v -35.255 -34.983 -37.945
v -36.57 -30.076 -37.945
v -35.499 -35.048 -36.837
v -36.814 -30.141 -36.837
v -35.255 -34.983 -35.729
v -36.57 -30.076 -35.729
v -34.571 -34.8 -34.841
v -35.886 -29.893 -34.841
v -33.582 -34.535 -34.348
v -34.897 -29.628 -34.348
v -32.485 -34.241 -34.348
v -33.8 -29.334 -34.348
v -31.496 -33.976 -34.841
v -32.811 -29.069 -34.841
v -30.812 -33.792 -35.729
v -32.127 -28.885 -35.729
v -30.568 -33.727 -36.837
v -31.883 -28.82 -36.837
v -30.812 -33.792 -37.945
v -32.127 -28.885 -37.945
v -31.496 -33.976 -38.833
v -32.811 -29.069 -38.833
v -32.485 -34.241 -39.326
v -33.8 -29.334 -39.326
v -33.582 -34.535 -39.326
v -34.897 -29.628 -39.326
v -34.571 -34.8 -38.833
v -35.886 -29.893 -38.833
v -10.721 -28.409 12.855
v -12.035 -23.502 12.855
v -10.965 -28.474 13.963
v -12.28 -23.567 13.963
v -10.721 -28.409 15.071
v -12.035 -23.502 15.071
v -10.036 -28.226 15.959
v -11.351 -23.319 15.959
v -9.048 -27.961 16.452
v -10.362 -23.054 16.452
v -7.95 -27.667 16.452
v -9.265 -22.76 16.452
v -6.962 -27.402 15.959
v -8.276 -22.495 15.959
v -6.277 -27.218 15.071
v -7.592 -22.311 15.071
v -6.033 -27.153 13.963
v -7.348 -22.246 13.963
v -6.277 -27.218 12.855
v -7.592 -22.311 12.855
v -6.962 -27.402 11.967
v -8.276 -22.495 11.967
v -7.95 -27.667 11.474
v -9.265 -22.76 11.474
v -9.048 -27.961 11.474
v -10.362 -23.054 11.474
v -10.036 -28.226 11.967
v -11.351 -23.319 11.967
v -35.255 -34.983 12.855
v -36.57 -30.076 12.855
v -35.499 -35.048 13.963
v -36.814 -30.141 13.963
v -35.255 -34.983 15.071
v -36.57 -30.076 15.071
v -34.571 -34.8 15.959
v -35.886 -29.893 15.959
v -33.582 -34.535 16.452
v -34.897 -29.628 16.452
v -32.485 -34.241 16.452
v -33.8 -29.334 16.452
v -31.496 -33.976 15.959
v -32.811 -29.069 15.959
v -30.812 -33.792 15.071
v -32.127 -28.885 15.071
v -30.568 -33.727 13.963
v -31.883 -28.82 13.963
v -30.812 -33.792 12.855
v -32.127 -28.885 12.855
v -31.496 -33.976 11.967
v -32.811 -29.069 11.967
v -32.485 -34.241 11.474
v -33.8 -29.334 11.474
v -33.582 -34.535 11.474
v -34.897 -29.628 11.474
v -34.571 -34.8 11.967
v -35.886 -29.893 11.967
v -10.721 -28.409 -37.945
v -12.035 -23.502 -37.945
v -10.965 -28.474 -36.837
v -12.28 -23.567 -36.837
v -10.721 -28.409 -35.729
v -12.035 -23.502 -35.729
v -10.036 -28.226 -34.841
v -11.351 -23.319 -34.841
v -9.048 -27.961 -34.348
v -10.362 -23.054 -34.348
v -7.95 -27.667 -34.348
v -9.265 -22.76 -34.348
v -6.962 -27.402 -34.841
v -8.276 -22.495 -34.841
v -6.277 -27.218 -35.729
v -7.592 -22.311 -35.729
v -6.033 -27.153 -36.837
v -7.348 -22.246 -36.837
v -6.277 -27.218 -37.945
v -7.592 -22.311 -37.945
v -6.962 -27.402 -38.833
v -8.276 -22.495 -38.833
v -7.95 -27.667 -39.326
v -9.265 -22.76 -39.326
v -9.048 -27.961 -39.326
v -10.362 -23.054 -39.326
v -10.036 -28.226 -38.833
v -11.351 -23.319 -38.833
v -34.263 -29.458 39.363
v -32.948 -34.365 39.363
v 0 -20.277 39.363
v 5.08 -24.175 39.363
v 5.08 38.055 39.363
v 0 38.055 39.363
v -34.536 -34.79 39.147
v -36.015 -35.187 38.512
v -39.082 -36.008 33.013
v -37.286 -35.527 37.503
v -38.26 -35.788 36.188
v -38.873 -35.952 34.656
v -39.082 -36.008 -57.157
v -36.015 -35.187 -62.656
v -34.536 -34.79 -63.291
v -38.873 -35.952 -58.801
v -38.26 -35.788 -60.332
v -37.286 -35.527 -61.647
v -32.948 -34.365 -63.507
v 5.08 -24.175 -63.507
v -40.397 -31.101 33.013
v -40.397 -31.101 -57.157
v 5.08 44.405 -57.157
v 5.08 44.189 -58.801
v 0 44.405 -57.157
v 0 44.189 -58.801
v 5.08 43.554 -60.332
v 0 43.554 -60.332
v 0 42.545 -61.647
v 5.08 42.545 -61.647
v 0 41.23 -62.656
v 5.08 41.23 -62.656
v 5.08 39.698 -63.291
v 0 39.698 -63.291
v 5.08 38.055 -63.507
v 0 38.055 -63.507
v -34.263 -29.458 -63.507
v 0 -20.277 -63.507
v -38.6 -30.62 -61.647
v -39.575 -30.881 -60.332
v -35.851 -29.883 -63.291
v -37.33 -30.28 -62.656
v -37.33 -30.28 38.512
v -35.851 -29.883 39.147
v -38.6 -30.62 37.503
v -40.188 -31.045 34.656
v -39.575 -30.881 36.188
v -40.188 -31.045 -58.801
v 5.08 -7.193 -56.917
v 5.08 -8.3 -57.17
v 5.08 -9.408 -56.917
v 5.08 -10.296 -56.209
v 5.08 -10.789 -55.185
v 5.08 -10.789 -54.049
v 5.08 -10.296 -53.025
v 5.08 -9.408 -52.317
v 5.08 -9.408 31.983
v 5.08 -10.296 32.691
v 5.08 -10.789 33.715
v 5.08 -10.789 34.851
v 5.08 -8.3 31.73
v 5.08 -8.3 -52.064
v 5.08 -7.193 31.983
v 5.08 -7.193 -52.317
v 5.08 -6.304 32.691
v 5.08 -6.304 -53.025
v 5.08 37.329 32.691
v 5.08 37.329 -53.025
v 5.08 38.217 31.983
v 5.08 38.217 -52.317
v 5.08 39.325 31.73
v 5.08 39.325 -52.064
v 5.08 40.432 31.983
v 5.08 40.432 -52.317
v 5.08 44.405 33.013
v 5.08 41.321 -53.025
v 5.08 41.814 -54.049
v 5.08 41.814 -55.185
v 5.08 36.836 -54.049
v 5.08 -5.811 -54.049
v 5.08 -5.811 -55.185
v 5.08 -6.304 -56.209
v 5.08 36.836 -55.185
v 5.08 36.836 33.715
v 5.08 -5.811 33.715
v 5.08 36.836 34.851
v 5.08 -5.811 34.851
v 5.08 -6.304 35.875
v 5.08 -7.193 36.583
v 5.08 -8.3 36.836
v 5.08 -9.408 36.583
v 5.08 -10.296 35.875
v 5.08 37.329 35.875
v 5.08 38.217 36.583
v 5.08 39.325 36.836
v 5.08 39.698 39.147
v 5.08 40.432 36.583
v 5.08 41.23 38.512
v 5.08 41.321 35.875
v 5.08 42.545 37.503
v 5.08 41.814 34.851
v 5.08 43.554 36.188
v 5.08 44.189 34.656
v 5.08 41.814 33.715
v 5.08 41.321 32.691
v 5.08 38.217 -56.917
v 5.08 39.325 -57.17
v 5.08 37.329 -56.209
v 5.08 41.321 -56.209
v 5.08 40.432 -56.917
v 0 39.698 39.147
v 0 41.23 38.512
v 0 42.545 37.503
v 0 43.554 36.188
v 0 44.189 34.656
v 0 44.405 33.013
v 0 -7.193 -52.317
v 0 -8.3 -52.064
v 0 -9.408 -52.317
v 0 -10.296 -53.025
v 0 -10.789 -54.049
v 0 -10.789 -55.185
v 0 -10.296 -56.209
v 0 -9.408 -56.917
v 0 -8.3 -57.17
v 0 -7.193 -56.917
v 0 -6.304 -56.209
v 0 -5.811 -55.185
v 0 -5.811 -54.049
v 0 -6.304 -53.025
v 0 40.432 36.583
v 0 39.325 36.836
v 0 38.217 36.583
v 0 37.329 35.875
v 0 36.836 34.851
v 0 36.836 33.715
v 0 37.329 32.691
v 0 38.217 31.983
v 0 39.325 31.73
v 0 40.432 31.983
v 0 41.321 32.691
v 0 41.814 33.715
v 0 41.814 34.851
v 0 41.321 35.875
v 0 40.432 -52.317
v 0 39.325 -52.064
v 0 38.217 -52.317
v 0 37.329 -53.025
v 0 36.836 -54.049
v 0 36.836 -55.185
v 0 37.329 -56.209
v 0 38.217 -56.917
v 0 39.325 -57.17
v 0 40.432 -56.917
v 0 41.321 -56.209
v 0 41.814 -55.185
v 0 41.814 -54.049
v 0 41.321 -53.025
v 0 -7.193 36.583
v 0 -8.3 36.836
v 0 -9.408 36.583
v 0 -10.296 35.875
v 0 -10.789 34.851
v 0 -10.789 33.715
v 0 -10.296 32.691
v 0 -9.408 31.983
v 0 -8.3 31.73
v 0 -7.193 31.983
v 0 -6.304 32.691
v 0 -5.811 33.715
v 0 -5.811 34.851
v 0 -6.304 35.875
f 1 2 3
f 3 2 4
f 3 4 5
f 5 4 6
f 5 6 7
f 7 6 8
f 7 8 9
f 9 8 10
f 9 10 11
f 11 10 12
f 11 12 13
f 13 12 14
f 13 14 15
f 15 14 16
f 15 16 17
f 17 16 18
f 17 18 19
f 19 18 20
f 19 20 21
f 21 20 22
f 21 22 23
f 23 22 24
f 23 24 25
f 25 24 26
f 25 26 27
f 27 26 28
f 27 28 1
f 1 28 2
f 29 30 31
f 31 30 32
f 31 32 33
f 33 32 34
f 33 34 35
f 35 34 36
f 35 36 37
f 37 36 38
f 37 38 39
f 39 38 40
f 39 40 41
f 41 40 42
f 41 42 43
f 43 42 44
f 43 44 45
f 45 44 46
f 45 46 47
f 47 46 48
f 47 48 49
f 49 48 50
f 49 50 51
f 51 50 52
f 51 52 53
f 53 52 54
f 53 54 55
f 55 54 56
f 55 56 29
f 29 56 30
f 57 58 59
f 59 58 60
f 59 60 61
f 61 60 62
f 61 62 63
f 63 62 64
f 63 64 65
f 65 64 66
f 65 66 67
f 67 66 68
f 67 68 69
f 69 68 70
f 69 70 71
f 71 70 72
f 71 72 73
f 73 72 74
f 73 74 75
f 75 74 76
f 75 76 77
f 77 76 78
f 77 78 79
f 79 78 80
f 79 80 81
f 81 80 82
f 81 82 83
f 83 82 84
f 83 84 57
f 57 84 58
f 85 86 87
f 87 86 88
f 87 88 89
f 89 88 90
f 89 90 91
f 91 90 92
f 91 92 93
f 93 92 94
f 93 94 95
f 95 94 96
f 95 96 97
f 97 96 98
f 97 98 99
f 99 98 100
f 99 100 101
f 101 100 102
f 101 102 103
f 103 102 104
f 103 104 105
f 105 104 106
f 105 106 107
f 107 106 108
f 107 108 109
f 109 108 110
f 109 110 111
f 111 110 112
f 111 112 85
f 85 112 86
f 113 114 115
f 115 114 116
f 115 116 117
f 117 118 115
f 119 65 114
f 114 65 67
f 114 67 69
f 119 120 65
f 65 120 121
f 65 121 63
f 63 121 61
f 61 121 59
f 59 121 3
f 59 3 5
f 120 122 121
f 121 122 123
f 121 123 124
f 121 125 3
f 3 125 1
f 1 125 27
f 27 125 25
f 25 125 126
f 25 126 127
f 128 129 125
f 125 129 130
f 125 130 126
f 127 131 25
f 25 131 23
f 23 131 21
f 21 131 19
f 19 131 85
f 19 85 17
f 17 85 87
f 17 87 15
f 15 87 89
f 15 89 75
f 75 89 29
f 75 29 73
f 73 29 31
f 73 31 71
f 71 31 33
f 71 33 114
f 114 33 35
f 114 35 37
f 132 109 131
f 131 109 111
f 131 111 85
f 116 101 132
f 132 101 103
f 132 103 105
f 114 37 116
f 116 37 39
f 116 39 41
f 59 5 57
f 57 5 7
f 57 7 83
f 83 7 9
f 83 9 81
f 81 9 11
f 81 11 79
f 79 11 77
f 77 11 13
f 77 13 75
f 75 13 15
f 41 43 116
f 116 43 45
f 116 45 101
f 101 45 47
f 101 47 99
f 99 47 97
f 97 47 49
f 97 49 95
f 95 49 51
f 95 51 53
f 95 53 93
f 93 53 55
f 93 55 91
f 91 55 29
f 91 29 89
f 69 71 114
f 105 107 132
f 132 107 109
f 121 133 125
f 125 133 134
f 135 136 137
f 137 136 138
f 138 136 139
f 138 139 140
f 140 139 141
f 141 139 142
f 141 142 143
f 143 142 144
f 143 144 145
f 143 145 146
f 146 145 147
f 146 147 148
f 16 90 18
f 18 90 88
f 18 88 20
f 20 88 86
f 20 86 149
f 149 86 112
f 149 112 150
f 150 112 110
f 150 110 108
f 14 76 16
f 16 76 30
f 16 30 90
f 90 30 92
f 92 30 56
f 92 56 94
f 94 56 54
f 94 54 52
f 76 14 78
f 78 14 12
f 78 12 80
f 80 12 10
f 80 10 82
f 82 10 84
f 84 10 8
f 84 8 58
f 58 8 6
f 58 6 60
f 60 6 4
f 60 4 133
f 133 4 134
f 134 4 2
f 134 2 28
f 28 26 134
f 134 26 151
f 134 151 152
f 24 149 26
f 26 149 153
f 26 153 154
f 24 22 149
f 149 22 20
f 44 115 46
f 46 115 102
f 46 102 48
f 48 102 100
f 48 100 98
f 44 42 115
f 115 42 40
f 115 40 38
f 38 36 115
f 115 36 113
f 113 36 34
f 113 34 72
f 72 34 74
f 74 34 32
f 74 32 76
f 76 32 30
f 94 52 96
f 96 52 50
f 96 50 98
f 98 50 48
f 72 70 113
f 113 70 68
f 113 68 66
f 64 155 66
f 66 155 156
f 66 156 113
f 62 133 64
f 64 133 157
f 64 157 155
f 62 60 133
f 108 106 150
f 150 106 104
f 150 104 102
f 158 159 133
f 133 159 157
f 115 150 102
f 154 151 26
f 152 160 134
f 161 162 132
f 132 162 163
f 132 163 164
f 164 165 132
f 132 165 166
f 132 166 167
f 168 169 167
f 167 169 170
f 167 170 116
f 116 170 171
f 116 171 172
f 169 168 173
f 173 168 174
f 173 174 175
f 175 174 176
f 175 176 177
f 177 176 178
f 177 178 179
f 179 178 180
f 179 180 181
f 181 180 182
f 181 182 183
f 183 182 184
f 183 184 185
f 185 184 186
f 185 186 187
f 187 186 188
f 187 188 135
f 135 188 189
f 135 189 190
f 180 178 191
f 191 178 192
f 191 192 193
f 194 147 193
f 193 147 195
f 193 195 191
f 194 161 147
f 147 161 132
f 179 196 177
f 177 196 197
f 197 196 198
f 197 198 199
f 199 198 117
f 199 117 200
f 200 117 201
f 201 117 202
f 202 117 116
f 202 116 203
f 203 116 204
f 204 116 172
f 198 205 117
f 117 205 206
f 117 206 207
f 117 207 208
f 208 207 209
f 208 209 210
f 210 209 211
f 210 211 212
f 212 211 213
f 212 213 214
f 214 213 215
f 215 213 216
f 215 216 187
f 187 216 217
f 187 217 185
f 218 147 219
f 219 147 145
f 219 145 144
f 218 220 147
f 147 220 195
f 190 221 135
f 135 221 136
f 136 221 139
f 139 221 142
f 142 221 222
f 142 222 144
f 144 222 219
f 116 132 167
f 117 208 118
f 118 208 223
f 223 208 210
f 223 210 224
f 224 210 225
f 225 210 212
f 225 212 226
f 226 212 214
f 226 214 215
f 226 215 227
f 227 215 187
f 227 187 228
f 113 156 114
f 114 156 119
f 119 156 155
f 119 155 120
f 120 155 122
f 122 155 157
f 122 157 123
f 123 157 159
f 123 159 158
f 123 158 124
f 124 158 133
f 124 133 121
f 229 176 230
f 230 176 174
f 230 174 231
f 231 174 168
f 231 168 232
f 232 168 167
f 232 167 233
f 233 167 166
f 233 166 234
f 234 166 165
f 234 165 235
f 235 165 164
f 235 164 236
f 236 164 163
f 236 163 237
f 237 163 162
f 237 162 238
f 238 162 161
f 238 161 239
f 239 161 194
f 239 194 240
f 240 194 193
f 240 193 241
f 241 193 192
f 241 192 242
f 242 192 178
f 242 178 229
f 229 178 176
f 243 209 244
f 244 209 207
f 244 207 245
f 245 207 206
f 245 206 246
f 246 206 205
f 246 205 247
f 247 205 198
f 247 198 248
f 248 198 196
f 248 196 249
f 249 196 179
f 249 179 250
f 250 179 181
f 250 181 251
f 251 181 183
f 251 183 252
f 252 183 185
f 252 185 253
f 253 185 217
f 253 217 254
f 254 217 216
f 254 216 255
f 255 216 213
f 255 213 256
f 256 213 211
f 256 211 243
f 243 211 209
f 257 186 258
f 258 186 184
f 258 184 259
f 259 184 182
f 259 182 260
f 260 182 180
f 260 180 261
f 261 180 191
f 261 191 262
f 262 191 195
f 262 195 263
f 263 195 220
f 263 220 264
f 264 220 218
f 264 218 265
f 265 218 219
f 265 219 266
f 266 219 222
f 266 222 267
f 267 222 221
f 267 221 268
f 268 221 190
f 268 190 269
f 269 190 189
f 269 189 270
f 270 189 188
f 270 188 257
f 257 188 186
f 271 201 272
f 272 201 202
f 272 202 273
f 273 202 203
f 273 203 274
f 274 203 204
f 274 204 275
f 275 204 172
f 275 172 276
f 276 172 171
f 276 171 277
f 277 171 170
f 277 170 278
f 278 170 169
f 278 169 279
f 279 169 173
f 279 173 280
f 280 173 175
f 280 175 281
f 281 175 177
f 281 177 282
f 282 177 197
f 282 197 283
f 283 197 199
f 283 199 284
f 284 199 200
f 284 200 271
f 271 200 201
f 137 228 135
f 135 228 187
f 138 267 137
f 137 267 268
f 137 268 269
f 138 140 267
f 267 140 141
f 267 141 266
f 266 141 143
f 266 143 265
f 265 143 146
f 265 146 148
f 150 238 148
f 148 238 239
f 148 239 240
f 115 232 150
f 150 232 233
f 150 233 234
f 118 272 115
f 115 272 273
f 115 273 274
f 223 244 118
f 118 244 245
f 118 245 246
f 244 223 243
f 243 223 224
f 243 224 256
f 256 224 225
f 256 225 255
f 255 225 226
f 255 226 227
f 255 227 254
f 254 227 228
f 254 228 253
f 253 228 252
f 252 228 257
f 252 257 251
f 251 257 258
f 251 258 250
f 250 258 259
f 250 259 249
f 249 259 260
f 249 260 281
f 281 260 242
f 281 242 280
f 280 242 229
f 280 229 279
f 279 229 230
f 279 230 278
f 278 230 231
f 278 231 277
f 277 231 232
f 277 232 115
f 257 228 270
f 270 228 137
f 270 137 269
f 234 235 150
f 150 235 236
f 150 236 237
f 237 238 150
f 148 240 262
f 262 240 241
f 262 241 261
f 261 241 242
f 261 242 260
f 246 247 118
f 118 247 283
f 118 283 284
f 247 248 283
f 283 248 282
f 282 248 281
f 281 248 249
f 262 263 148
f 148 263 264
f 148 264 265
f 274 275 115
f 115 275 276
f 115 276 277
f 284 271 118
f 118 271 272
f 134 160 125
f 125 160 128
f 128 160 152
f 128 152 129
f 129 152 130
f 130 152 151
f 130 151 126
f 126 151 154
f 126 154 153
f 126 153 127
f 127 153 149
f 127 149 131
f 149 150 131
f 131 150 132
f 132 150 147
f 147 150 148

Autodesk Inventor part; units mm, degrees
ref_plane "YZ Plane" through (0, 0, 0) normal (1, 0, 0) x (0, 1, 0)
ref_plane "XZ Plane" through (0, 0, 0) normal (0, 1, 0) x (-1, 0, 0)
ref_plane "XY Plane" through (0, 0, 0) normal (0, 0, 1) x (1, 0, 0)
sketch "Sketch1" plane through (0, 0, 0) normal (1, 0, 0) x (0, 1, 0)
  line L0 (44.4049, 39.363) -> (-19.0951, 39.363)
  line L1 (-19.0951, 39.363) -> (-19.0951, -63.507)
  line L2 (-19.0951, -63.507) -> (44.4049, -63.507)
  line L3 (44.4049, -63.507) -> (44.4049, 39.363)
  point P0 (0, 0)
  dimension "d0" = 102.87
  dimension "d1" = 63.5
extrude "Extrusion1" add sketch "Sketch1" along normal blind 5.08
sketch "Sketch2" plane through (5.08, 0, 0) normal (1, 0, 0) x (0, 0, -1)
  line L0 (63.507, 44.4049) -> (-39.363, 44.4049) projected
  line L1 (-39.363, 44.4049) -> (-39.363, -19.0951) projected
  point P0 (0, 0)
  point P1 (-34.283, 39.3249)
  point P2 (54.617, 39.3249)
  point P3 (54.617, -8.3001)
  point P4 (-34.283, -8.3001)
  dimension "d4" = 0
  dimension "d5" = 0
  dimension "d6" = 0
  dimension "d7" = 0
  dimension "d8" = 88.9
  dimension "d9" = 5.08
  dimension "d10" = 5.08
  dimension "d11" = 47.625
hole "Hole1" at (5.08, 39.3249, 34.283) at (5.08, 39.3249, -54.617) at (5.08, -8.3001, -54.617) at (5.08, -8.3001, 34.283) direction (-1, 0, 0) diameter 5.1054 end through all clearance for "Flat Head Machine Screw (82)" size "#10" standard "Ansi Unified Screw Threads"
fillet "Fillet1" radius 6.35 2 edges at (2.54, 44.4049, 39.363) (2.54, 44.4049, -63.507)
sketch "Sketch7" plane through (0, -19.0951, 39.363) normal (0, 0, 1) x (1, 0, 0)
  line L0 (0, 0) -> (5.08, 0)
  line L1 (5.08, 0) -> (5.08, -5.08)
  line L2 (5.08, -5.08) -> (-39.0821, -16.9132)
  line L3 (-39.0821, -16.9132) -> (-40.3969, -12.0063)
  line L4 (-40.3969, -12.0063) -> (0, -1.182)
  line L5 (0, -1.182) -> (0, 0)
  line L6 (0, 0) -> (5.08, 0) projected
  line L7 (0, 57.15) -> (0, 0) projected
  point P0 (0, 19.0951)
  dimension "d51" = 5.08
  dimension "d52" = 5.08
  dimension "d53" = 105
  dimension "d54" = 5.08
  dimension "d55" = 45.72
  dimension "d56" = 0
  dimension "d57" = 0
extrude "Extrusion4" add sketch "Sketch7" against normal blind 102.87
sketch "Sketch8" plane through (0, -20.2771, 39.363) normal (-0.258819, 0.9659258, 0) x (0.9659258, 0.258819, 0)
  line L0 (0, 0) -> (0, 102.87) projected
  line L1 (-41.822, 0) -> (0, 0) projected
  line L2 (-41.822, 102.87) -> (0, 102.87) projected
  point P0 (5.2481, 39.363)
  point P1 (-10.16, 25.4)
  point P2 (-35.56, 25.4)
  point P3 (-35.56, 76.2)
  point P4 (-10.16, 76.2)
  dimension "d66" = 25.4
  dimension "d67" = 0
  dimension "d68" = 25.4
  dimension "d69" = 0
  dimension "d70" = 50.8
  dimension "d71" = 0
  dimension "d72" = 0
  dimension "d73" = 26.67
hole "Hole3" at (-9.8138, -22.9067, 13.963) at (-34.3483, -29.4807, 13.963) at (-34.3483, -29.4807, -36.837) at (-9.8138, -22.9067, -36.837) direction (0.258819, -0.9659258, 0) diameter 5.1054 end through all clearance for "Flat Head Machine Screw (82)" size "#10" standard "Ansi Unified Screw Threads"
fillet "Fillet2" radius 6.35 2 edges at (-39.7395, -33.5549, -63.507) (-39.7395, -33.5549, 39.363)
properties part number "LimeLight120"
